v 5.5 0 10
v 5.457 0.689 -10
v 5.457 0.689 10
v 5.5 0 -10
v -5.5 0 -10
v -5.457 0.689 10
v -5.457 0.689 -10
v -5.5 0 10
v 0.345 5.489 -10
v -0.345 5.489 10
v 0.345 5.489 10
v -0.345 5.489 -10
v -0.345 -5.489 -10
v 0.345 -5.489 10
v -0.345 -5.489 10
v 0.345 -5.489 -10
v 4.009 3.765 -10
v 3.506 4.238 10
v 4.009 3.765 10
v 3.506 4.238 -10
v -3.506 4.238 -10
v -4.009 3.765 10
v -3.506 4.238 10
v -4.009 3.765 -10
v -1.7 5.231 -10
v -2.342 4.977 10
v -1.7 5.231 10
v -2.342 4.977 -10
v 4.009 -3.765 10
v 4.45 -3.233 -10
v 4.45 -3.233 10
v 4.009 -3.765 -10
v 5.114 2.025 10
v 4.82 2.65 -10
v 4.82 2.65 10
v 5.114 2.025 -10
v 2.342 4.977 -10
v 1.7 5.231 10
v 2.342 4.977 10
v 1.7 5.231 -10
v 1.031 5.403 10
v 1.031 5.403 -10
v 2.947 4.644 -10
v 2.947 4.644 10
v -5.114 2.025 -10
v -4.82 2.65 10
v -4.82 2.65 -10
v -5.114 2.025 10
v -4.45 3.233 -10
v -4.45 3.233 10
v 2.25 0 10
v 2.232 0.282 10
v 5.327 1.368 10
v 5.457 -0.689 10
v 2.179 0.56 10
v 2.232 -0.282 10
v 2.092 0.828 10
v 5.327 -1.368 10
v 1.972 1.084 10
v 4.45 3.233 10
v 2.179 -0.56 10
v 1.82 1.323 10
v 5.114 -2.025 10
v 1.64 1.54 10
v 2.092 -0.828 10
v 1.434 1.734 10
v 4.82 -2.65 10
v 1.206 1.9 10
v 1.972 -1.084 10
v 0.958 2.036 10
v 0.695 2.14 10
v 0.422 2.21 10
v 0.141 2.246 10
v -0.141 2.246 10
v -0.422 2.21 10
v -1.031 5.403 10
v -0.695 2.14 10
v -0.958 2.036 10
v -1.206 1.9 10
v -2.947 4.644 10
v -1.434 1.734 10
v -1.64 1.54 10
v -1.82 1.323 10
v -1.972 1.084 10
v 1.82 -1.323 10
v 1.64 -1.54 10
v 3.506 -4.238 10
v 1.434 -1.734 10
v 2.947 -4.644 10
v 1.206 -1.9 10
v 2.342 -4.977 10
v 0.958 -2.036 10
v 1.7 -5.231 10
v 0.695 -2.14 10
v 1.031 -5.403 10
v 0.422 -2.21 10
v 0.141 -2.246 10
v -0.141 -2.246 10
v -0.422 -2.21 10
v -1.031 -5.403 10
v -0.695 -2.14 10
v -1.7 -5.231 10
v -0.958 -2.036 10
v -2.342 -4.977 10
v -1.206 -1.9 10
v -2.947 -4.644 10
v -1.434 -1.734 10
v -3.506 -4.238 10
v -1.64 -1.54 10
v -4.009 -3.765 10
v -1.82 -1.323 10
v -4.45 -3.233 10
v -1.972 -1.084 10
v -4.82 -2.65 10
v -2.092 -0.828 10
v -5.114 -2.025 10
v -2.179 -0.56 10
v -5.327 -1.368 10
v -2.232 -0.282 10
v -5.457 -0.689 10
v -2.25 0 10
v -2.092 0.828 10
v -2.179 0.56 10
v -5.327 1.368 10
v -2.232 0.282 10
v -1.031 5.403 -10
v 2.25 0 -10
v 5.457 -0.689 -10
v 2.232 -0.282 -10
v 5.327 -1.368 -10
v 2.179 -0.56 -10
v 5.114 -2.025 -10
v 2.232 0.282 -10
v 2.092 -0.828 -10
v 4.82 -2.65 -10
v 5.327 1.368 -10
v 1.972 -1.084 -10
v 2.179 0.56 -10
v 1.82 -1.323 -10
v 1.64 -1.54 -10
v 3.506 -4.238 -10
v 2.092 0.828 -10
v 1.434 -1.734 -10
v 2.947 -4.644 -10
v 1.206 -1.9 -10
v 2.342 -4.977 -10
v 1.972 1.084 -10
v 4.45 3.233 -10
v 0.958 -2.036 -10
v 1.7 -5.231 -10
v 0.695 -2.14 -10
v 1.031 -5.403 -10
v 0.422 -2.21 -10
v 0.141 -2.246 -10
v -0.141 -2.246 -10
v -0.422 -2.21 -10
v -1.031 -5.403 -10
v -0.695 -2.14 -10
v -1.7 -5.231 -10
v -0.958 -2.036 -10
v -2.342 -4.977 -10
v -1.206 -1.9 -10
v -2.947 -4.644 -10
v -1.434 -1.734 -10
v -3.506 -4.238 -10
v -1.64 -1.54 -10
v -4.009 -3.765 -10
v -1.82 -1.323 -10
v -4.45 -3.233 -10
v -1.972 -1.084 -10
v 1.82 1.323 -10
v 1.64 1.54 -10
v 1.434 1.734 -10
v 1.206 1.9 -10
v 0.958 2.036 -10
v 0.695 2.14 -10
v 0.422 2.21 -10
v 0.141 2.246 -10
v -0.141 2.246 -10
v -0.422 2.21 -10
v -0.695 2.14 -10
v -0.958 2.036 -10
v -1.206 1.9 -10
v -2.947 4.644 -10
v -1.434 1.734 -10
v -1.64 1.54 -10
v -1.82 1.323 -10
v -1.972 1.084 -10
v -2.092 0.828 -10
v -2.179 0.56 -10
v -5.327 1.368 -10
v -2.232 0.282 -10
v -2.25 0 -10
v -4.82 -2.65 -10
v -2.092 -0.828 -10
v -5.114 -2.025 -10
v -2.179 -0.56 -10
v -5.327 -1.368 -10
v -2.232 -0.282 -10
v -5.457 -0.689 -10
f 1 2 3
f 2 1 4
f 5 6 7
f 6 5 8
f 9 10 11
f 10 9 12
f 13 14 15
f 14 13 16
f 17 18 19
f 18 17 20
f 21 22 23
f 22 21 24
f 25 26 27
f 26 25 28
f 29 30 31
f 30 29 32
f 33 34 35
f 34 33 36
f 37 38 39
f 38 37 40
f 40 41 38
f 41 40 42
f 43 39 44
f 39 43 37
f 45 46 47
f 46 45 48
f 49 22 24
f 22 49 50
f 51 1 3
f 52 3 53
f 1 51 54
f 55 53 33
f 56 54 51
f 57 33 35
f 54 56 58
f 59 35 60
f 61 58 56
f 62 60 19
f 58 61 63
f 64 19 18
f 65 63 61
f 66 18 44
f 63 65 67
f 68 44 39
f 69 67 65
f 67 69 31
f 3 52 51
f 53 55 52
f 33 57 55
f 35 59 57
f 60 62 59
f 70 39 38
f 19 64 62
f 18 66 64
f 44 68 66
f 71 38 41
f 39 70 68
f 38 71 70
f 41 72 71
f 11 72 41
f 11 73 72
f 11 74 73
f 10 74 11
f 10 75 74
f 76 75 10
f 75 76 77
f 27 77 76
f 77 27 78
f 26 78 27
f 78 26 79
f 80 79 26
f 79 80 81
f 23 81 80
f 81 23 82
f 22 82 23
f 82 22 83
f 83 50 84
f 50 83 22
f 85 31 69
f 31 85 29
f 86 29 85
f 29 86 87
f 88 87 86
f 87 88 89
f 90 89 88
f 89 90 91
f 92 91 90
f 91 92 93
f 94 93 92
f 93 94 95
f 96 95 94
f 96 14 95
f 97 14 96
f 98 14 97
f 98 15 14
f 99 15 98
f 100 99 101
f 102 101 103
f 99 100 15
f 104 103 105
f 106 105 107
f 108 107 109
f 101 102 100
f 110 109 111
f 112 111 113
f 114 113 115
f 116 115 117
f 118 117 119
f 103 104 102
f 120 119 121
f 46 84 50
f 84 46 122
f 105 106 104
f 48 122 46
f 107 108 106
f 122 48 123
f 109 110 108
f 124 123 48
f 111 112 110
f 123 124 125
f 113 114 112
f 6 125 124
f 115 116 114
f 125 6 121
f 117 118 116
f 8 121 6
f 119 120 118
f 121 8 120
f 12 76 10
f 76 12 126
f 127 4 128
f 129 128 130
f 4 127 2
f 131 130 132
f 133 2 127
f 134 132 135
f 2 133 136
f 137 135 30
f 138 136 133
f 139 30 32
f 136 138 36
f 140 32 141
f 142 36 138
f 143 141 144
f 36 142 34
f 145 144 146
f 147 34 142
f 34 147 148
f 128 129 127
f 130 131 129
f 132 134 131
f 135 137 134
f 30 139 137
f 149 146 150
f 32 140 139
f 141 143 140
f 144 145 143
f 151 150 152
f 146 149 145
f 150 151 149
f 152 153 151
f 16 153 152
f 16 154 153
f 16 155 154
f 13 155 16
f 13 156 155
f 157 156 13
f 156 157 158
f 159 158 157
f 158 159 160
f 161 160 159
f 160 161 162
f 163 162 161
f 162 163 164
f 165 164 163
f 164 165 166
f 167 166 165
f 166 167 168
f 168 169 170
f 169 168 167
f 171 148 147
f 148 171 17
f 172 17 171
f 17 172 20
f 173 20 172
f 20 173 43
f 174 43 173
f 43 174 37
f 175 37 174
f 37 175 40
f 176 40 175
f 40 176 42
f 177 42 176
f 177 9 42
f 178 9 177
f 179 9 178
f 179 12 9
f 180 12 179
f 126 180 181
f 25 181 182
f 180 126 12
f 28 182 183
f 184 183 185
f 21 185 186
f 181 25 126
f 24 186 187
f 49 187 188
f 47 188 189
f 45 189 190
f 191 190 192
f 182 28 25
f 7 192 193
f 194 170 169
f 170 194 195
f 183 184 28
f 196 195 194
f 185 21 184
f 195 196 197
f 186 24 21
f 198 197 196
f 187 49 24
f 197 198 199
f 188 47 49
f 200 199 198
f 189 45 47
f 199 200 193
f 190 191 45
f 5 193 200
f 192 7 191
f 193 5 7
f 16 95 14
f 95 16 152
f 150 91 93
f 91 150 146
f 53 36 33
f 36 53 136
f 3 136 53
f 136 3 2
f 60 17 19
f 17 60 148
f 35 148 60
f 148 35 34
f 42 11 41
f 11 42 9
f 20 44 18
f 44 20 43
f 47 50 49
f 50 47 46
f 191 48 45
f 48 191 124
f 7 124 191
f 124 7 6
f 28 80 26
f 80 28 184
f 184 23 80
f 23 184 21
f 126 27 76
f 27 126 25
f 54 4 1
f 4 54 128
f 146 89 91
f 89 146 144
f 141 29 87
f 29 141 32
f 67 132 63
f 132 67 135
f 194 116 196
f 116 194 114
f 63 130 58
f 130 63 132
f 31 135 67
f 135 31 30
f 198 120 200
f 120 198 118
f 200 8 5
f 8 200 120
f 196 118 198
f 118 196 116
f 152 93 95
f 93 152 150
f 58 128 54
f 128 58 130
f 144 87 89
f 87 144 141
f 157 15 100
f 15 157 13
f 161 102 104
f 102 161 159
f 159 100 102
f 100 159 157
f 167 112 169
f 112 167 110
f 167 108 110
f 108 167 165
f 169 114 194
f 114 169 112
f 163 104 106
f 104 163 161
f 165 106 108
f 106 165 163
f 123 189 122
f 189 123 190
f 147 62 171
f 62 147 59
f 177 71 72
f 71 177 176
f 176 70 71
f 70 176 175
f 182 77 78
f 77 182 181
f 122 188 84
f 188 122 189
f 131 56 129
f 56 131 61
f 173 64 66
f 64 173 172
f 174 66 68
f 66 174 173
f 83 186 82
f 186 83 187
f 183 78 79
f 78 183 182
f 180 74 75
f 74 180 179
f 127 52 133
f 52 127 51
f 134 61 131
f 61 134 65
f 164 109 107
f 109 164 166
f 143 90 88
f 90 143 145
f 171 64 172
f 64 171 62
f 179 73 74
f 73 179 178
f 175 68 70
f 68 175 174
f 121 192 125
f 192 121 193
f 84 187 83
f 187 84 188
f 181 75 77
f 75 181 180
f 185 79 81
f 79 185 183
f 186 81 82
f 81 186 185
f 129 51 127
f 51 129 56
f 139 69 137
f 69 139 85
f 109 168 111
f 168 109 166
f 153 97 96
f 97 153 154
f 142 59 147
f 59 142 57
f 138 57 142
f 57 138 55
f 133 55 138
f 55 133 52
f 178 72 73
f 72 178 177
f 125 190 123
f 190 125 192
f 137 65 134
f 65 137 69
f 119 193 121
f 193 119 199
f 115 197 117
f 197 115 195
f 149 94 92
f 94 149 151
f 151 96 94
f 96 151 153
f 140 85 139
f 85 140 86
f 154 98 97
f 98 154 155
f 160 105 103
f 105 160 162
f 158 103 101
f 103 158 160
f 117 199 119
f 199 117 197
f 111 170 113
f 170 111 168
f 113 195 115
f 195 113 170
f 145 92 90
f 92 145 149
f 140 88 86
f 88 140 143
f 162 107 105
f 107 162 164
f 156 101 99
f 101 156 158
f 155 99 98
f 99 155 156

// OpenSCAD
$fn = 50;


difference() {
	union() {
		translate(v = [0, 0, -10.0000000000]) {
			cylinder(h = 20, r = 5.5000000000);
		}
	}
	union() {
		translate(v = [0, 0, -100.0000000000]) {
			cylinder(h = 200, r = 2.2500000000);
		}
	}
}
